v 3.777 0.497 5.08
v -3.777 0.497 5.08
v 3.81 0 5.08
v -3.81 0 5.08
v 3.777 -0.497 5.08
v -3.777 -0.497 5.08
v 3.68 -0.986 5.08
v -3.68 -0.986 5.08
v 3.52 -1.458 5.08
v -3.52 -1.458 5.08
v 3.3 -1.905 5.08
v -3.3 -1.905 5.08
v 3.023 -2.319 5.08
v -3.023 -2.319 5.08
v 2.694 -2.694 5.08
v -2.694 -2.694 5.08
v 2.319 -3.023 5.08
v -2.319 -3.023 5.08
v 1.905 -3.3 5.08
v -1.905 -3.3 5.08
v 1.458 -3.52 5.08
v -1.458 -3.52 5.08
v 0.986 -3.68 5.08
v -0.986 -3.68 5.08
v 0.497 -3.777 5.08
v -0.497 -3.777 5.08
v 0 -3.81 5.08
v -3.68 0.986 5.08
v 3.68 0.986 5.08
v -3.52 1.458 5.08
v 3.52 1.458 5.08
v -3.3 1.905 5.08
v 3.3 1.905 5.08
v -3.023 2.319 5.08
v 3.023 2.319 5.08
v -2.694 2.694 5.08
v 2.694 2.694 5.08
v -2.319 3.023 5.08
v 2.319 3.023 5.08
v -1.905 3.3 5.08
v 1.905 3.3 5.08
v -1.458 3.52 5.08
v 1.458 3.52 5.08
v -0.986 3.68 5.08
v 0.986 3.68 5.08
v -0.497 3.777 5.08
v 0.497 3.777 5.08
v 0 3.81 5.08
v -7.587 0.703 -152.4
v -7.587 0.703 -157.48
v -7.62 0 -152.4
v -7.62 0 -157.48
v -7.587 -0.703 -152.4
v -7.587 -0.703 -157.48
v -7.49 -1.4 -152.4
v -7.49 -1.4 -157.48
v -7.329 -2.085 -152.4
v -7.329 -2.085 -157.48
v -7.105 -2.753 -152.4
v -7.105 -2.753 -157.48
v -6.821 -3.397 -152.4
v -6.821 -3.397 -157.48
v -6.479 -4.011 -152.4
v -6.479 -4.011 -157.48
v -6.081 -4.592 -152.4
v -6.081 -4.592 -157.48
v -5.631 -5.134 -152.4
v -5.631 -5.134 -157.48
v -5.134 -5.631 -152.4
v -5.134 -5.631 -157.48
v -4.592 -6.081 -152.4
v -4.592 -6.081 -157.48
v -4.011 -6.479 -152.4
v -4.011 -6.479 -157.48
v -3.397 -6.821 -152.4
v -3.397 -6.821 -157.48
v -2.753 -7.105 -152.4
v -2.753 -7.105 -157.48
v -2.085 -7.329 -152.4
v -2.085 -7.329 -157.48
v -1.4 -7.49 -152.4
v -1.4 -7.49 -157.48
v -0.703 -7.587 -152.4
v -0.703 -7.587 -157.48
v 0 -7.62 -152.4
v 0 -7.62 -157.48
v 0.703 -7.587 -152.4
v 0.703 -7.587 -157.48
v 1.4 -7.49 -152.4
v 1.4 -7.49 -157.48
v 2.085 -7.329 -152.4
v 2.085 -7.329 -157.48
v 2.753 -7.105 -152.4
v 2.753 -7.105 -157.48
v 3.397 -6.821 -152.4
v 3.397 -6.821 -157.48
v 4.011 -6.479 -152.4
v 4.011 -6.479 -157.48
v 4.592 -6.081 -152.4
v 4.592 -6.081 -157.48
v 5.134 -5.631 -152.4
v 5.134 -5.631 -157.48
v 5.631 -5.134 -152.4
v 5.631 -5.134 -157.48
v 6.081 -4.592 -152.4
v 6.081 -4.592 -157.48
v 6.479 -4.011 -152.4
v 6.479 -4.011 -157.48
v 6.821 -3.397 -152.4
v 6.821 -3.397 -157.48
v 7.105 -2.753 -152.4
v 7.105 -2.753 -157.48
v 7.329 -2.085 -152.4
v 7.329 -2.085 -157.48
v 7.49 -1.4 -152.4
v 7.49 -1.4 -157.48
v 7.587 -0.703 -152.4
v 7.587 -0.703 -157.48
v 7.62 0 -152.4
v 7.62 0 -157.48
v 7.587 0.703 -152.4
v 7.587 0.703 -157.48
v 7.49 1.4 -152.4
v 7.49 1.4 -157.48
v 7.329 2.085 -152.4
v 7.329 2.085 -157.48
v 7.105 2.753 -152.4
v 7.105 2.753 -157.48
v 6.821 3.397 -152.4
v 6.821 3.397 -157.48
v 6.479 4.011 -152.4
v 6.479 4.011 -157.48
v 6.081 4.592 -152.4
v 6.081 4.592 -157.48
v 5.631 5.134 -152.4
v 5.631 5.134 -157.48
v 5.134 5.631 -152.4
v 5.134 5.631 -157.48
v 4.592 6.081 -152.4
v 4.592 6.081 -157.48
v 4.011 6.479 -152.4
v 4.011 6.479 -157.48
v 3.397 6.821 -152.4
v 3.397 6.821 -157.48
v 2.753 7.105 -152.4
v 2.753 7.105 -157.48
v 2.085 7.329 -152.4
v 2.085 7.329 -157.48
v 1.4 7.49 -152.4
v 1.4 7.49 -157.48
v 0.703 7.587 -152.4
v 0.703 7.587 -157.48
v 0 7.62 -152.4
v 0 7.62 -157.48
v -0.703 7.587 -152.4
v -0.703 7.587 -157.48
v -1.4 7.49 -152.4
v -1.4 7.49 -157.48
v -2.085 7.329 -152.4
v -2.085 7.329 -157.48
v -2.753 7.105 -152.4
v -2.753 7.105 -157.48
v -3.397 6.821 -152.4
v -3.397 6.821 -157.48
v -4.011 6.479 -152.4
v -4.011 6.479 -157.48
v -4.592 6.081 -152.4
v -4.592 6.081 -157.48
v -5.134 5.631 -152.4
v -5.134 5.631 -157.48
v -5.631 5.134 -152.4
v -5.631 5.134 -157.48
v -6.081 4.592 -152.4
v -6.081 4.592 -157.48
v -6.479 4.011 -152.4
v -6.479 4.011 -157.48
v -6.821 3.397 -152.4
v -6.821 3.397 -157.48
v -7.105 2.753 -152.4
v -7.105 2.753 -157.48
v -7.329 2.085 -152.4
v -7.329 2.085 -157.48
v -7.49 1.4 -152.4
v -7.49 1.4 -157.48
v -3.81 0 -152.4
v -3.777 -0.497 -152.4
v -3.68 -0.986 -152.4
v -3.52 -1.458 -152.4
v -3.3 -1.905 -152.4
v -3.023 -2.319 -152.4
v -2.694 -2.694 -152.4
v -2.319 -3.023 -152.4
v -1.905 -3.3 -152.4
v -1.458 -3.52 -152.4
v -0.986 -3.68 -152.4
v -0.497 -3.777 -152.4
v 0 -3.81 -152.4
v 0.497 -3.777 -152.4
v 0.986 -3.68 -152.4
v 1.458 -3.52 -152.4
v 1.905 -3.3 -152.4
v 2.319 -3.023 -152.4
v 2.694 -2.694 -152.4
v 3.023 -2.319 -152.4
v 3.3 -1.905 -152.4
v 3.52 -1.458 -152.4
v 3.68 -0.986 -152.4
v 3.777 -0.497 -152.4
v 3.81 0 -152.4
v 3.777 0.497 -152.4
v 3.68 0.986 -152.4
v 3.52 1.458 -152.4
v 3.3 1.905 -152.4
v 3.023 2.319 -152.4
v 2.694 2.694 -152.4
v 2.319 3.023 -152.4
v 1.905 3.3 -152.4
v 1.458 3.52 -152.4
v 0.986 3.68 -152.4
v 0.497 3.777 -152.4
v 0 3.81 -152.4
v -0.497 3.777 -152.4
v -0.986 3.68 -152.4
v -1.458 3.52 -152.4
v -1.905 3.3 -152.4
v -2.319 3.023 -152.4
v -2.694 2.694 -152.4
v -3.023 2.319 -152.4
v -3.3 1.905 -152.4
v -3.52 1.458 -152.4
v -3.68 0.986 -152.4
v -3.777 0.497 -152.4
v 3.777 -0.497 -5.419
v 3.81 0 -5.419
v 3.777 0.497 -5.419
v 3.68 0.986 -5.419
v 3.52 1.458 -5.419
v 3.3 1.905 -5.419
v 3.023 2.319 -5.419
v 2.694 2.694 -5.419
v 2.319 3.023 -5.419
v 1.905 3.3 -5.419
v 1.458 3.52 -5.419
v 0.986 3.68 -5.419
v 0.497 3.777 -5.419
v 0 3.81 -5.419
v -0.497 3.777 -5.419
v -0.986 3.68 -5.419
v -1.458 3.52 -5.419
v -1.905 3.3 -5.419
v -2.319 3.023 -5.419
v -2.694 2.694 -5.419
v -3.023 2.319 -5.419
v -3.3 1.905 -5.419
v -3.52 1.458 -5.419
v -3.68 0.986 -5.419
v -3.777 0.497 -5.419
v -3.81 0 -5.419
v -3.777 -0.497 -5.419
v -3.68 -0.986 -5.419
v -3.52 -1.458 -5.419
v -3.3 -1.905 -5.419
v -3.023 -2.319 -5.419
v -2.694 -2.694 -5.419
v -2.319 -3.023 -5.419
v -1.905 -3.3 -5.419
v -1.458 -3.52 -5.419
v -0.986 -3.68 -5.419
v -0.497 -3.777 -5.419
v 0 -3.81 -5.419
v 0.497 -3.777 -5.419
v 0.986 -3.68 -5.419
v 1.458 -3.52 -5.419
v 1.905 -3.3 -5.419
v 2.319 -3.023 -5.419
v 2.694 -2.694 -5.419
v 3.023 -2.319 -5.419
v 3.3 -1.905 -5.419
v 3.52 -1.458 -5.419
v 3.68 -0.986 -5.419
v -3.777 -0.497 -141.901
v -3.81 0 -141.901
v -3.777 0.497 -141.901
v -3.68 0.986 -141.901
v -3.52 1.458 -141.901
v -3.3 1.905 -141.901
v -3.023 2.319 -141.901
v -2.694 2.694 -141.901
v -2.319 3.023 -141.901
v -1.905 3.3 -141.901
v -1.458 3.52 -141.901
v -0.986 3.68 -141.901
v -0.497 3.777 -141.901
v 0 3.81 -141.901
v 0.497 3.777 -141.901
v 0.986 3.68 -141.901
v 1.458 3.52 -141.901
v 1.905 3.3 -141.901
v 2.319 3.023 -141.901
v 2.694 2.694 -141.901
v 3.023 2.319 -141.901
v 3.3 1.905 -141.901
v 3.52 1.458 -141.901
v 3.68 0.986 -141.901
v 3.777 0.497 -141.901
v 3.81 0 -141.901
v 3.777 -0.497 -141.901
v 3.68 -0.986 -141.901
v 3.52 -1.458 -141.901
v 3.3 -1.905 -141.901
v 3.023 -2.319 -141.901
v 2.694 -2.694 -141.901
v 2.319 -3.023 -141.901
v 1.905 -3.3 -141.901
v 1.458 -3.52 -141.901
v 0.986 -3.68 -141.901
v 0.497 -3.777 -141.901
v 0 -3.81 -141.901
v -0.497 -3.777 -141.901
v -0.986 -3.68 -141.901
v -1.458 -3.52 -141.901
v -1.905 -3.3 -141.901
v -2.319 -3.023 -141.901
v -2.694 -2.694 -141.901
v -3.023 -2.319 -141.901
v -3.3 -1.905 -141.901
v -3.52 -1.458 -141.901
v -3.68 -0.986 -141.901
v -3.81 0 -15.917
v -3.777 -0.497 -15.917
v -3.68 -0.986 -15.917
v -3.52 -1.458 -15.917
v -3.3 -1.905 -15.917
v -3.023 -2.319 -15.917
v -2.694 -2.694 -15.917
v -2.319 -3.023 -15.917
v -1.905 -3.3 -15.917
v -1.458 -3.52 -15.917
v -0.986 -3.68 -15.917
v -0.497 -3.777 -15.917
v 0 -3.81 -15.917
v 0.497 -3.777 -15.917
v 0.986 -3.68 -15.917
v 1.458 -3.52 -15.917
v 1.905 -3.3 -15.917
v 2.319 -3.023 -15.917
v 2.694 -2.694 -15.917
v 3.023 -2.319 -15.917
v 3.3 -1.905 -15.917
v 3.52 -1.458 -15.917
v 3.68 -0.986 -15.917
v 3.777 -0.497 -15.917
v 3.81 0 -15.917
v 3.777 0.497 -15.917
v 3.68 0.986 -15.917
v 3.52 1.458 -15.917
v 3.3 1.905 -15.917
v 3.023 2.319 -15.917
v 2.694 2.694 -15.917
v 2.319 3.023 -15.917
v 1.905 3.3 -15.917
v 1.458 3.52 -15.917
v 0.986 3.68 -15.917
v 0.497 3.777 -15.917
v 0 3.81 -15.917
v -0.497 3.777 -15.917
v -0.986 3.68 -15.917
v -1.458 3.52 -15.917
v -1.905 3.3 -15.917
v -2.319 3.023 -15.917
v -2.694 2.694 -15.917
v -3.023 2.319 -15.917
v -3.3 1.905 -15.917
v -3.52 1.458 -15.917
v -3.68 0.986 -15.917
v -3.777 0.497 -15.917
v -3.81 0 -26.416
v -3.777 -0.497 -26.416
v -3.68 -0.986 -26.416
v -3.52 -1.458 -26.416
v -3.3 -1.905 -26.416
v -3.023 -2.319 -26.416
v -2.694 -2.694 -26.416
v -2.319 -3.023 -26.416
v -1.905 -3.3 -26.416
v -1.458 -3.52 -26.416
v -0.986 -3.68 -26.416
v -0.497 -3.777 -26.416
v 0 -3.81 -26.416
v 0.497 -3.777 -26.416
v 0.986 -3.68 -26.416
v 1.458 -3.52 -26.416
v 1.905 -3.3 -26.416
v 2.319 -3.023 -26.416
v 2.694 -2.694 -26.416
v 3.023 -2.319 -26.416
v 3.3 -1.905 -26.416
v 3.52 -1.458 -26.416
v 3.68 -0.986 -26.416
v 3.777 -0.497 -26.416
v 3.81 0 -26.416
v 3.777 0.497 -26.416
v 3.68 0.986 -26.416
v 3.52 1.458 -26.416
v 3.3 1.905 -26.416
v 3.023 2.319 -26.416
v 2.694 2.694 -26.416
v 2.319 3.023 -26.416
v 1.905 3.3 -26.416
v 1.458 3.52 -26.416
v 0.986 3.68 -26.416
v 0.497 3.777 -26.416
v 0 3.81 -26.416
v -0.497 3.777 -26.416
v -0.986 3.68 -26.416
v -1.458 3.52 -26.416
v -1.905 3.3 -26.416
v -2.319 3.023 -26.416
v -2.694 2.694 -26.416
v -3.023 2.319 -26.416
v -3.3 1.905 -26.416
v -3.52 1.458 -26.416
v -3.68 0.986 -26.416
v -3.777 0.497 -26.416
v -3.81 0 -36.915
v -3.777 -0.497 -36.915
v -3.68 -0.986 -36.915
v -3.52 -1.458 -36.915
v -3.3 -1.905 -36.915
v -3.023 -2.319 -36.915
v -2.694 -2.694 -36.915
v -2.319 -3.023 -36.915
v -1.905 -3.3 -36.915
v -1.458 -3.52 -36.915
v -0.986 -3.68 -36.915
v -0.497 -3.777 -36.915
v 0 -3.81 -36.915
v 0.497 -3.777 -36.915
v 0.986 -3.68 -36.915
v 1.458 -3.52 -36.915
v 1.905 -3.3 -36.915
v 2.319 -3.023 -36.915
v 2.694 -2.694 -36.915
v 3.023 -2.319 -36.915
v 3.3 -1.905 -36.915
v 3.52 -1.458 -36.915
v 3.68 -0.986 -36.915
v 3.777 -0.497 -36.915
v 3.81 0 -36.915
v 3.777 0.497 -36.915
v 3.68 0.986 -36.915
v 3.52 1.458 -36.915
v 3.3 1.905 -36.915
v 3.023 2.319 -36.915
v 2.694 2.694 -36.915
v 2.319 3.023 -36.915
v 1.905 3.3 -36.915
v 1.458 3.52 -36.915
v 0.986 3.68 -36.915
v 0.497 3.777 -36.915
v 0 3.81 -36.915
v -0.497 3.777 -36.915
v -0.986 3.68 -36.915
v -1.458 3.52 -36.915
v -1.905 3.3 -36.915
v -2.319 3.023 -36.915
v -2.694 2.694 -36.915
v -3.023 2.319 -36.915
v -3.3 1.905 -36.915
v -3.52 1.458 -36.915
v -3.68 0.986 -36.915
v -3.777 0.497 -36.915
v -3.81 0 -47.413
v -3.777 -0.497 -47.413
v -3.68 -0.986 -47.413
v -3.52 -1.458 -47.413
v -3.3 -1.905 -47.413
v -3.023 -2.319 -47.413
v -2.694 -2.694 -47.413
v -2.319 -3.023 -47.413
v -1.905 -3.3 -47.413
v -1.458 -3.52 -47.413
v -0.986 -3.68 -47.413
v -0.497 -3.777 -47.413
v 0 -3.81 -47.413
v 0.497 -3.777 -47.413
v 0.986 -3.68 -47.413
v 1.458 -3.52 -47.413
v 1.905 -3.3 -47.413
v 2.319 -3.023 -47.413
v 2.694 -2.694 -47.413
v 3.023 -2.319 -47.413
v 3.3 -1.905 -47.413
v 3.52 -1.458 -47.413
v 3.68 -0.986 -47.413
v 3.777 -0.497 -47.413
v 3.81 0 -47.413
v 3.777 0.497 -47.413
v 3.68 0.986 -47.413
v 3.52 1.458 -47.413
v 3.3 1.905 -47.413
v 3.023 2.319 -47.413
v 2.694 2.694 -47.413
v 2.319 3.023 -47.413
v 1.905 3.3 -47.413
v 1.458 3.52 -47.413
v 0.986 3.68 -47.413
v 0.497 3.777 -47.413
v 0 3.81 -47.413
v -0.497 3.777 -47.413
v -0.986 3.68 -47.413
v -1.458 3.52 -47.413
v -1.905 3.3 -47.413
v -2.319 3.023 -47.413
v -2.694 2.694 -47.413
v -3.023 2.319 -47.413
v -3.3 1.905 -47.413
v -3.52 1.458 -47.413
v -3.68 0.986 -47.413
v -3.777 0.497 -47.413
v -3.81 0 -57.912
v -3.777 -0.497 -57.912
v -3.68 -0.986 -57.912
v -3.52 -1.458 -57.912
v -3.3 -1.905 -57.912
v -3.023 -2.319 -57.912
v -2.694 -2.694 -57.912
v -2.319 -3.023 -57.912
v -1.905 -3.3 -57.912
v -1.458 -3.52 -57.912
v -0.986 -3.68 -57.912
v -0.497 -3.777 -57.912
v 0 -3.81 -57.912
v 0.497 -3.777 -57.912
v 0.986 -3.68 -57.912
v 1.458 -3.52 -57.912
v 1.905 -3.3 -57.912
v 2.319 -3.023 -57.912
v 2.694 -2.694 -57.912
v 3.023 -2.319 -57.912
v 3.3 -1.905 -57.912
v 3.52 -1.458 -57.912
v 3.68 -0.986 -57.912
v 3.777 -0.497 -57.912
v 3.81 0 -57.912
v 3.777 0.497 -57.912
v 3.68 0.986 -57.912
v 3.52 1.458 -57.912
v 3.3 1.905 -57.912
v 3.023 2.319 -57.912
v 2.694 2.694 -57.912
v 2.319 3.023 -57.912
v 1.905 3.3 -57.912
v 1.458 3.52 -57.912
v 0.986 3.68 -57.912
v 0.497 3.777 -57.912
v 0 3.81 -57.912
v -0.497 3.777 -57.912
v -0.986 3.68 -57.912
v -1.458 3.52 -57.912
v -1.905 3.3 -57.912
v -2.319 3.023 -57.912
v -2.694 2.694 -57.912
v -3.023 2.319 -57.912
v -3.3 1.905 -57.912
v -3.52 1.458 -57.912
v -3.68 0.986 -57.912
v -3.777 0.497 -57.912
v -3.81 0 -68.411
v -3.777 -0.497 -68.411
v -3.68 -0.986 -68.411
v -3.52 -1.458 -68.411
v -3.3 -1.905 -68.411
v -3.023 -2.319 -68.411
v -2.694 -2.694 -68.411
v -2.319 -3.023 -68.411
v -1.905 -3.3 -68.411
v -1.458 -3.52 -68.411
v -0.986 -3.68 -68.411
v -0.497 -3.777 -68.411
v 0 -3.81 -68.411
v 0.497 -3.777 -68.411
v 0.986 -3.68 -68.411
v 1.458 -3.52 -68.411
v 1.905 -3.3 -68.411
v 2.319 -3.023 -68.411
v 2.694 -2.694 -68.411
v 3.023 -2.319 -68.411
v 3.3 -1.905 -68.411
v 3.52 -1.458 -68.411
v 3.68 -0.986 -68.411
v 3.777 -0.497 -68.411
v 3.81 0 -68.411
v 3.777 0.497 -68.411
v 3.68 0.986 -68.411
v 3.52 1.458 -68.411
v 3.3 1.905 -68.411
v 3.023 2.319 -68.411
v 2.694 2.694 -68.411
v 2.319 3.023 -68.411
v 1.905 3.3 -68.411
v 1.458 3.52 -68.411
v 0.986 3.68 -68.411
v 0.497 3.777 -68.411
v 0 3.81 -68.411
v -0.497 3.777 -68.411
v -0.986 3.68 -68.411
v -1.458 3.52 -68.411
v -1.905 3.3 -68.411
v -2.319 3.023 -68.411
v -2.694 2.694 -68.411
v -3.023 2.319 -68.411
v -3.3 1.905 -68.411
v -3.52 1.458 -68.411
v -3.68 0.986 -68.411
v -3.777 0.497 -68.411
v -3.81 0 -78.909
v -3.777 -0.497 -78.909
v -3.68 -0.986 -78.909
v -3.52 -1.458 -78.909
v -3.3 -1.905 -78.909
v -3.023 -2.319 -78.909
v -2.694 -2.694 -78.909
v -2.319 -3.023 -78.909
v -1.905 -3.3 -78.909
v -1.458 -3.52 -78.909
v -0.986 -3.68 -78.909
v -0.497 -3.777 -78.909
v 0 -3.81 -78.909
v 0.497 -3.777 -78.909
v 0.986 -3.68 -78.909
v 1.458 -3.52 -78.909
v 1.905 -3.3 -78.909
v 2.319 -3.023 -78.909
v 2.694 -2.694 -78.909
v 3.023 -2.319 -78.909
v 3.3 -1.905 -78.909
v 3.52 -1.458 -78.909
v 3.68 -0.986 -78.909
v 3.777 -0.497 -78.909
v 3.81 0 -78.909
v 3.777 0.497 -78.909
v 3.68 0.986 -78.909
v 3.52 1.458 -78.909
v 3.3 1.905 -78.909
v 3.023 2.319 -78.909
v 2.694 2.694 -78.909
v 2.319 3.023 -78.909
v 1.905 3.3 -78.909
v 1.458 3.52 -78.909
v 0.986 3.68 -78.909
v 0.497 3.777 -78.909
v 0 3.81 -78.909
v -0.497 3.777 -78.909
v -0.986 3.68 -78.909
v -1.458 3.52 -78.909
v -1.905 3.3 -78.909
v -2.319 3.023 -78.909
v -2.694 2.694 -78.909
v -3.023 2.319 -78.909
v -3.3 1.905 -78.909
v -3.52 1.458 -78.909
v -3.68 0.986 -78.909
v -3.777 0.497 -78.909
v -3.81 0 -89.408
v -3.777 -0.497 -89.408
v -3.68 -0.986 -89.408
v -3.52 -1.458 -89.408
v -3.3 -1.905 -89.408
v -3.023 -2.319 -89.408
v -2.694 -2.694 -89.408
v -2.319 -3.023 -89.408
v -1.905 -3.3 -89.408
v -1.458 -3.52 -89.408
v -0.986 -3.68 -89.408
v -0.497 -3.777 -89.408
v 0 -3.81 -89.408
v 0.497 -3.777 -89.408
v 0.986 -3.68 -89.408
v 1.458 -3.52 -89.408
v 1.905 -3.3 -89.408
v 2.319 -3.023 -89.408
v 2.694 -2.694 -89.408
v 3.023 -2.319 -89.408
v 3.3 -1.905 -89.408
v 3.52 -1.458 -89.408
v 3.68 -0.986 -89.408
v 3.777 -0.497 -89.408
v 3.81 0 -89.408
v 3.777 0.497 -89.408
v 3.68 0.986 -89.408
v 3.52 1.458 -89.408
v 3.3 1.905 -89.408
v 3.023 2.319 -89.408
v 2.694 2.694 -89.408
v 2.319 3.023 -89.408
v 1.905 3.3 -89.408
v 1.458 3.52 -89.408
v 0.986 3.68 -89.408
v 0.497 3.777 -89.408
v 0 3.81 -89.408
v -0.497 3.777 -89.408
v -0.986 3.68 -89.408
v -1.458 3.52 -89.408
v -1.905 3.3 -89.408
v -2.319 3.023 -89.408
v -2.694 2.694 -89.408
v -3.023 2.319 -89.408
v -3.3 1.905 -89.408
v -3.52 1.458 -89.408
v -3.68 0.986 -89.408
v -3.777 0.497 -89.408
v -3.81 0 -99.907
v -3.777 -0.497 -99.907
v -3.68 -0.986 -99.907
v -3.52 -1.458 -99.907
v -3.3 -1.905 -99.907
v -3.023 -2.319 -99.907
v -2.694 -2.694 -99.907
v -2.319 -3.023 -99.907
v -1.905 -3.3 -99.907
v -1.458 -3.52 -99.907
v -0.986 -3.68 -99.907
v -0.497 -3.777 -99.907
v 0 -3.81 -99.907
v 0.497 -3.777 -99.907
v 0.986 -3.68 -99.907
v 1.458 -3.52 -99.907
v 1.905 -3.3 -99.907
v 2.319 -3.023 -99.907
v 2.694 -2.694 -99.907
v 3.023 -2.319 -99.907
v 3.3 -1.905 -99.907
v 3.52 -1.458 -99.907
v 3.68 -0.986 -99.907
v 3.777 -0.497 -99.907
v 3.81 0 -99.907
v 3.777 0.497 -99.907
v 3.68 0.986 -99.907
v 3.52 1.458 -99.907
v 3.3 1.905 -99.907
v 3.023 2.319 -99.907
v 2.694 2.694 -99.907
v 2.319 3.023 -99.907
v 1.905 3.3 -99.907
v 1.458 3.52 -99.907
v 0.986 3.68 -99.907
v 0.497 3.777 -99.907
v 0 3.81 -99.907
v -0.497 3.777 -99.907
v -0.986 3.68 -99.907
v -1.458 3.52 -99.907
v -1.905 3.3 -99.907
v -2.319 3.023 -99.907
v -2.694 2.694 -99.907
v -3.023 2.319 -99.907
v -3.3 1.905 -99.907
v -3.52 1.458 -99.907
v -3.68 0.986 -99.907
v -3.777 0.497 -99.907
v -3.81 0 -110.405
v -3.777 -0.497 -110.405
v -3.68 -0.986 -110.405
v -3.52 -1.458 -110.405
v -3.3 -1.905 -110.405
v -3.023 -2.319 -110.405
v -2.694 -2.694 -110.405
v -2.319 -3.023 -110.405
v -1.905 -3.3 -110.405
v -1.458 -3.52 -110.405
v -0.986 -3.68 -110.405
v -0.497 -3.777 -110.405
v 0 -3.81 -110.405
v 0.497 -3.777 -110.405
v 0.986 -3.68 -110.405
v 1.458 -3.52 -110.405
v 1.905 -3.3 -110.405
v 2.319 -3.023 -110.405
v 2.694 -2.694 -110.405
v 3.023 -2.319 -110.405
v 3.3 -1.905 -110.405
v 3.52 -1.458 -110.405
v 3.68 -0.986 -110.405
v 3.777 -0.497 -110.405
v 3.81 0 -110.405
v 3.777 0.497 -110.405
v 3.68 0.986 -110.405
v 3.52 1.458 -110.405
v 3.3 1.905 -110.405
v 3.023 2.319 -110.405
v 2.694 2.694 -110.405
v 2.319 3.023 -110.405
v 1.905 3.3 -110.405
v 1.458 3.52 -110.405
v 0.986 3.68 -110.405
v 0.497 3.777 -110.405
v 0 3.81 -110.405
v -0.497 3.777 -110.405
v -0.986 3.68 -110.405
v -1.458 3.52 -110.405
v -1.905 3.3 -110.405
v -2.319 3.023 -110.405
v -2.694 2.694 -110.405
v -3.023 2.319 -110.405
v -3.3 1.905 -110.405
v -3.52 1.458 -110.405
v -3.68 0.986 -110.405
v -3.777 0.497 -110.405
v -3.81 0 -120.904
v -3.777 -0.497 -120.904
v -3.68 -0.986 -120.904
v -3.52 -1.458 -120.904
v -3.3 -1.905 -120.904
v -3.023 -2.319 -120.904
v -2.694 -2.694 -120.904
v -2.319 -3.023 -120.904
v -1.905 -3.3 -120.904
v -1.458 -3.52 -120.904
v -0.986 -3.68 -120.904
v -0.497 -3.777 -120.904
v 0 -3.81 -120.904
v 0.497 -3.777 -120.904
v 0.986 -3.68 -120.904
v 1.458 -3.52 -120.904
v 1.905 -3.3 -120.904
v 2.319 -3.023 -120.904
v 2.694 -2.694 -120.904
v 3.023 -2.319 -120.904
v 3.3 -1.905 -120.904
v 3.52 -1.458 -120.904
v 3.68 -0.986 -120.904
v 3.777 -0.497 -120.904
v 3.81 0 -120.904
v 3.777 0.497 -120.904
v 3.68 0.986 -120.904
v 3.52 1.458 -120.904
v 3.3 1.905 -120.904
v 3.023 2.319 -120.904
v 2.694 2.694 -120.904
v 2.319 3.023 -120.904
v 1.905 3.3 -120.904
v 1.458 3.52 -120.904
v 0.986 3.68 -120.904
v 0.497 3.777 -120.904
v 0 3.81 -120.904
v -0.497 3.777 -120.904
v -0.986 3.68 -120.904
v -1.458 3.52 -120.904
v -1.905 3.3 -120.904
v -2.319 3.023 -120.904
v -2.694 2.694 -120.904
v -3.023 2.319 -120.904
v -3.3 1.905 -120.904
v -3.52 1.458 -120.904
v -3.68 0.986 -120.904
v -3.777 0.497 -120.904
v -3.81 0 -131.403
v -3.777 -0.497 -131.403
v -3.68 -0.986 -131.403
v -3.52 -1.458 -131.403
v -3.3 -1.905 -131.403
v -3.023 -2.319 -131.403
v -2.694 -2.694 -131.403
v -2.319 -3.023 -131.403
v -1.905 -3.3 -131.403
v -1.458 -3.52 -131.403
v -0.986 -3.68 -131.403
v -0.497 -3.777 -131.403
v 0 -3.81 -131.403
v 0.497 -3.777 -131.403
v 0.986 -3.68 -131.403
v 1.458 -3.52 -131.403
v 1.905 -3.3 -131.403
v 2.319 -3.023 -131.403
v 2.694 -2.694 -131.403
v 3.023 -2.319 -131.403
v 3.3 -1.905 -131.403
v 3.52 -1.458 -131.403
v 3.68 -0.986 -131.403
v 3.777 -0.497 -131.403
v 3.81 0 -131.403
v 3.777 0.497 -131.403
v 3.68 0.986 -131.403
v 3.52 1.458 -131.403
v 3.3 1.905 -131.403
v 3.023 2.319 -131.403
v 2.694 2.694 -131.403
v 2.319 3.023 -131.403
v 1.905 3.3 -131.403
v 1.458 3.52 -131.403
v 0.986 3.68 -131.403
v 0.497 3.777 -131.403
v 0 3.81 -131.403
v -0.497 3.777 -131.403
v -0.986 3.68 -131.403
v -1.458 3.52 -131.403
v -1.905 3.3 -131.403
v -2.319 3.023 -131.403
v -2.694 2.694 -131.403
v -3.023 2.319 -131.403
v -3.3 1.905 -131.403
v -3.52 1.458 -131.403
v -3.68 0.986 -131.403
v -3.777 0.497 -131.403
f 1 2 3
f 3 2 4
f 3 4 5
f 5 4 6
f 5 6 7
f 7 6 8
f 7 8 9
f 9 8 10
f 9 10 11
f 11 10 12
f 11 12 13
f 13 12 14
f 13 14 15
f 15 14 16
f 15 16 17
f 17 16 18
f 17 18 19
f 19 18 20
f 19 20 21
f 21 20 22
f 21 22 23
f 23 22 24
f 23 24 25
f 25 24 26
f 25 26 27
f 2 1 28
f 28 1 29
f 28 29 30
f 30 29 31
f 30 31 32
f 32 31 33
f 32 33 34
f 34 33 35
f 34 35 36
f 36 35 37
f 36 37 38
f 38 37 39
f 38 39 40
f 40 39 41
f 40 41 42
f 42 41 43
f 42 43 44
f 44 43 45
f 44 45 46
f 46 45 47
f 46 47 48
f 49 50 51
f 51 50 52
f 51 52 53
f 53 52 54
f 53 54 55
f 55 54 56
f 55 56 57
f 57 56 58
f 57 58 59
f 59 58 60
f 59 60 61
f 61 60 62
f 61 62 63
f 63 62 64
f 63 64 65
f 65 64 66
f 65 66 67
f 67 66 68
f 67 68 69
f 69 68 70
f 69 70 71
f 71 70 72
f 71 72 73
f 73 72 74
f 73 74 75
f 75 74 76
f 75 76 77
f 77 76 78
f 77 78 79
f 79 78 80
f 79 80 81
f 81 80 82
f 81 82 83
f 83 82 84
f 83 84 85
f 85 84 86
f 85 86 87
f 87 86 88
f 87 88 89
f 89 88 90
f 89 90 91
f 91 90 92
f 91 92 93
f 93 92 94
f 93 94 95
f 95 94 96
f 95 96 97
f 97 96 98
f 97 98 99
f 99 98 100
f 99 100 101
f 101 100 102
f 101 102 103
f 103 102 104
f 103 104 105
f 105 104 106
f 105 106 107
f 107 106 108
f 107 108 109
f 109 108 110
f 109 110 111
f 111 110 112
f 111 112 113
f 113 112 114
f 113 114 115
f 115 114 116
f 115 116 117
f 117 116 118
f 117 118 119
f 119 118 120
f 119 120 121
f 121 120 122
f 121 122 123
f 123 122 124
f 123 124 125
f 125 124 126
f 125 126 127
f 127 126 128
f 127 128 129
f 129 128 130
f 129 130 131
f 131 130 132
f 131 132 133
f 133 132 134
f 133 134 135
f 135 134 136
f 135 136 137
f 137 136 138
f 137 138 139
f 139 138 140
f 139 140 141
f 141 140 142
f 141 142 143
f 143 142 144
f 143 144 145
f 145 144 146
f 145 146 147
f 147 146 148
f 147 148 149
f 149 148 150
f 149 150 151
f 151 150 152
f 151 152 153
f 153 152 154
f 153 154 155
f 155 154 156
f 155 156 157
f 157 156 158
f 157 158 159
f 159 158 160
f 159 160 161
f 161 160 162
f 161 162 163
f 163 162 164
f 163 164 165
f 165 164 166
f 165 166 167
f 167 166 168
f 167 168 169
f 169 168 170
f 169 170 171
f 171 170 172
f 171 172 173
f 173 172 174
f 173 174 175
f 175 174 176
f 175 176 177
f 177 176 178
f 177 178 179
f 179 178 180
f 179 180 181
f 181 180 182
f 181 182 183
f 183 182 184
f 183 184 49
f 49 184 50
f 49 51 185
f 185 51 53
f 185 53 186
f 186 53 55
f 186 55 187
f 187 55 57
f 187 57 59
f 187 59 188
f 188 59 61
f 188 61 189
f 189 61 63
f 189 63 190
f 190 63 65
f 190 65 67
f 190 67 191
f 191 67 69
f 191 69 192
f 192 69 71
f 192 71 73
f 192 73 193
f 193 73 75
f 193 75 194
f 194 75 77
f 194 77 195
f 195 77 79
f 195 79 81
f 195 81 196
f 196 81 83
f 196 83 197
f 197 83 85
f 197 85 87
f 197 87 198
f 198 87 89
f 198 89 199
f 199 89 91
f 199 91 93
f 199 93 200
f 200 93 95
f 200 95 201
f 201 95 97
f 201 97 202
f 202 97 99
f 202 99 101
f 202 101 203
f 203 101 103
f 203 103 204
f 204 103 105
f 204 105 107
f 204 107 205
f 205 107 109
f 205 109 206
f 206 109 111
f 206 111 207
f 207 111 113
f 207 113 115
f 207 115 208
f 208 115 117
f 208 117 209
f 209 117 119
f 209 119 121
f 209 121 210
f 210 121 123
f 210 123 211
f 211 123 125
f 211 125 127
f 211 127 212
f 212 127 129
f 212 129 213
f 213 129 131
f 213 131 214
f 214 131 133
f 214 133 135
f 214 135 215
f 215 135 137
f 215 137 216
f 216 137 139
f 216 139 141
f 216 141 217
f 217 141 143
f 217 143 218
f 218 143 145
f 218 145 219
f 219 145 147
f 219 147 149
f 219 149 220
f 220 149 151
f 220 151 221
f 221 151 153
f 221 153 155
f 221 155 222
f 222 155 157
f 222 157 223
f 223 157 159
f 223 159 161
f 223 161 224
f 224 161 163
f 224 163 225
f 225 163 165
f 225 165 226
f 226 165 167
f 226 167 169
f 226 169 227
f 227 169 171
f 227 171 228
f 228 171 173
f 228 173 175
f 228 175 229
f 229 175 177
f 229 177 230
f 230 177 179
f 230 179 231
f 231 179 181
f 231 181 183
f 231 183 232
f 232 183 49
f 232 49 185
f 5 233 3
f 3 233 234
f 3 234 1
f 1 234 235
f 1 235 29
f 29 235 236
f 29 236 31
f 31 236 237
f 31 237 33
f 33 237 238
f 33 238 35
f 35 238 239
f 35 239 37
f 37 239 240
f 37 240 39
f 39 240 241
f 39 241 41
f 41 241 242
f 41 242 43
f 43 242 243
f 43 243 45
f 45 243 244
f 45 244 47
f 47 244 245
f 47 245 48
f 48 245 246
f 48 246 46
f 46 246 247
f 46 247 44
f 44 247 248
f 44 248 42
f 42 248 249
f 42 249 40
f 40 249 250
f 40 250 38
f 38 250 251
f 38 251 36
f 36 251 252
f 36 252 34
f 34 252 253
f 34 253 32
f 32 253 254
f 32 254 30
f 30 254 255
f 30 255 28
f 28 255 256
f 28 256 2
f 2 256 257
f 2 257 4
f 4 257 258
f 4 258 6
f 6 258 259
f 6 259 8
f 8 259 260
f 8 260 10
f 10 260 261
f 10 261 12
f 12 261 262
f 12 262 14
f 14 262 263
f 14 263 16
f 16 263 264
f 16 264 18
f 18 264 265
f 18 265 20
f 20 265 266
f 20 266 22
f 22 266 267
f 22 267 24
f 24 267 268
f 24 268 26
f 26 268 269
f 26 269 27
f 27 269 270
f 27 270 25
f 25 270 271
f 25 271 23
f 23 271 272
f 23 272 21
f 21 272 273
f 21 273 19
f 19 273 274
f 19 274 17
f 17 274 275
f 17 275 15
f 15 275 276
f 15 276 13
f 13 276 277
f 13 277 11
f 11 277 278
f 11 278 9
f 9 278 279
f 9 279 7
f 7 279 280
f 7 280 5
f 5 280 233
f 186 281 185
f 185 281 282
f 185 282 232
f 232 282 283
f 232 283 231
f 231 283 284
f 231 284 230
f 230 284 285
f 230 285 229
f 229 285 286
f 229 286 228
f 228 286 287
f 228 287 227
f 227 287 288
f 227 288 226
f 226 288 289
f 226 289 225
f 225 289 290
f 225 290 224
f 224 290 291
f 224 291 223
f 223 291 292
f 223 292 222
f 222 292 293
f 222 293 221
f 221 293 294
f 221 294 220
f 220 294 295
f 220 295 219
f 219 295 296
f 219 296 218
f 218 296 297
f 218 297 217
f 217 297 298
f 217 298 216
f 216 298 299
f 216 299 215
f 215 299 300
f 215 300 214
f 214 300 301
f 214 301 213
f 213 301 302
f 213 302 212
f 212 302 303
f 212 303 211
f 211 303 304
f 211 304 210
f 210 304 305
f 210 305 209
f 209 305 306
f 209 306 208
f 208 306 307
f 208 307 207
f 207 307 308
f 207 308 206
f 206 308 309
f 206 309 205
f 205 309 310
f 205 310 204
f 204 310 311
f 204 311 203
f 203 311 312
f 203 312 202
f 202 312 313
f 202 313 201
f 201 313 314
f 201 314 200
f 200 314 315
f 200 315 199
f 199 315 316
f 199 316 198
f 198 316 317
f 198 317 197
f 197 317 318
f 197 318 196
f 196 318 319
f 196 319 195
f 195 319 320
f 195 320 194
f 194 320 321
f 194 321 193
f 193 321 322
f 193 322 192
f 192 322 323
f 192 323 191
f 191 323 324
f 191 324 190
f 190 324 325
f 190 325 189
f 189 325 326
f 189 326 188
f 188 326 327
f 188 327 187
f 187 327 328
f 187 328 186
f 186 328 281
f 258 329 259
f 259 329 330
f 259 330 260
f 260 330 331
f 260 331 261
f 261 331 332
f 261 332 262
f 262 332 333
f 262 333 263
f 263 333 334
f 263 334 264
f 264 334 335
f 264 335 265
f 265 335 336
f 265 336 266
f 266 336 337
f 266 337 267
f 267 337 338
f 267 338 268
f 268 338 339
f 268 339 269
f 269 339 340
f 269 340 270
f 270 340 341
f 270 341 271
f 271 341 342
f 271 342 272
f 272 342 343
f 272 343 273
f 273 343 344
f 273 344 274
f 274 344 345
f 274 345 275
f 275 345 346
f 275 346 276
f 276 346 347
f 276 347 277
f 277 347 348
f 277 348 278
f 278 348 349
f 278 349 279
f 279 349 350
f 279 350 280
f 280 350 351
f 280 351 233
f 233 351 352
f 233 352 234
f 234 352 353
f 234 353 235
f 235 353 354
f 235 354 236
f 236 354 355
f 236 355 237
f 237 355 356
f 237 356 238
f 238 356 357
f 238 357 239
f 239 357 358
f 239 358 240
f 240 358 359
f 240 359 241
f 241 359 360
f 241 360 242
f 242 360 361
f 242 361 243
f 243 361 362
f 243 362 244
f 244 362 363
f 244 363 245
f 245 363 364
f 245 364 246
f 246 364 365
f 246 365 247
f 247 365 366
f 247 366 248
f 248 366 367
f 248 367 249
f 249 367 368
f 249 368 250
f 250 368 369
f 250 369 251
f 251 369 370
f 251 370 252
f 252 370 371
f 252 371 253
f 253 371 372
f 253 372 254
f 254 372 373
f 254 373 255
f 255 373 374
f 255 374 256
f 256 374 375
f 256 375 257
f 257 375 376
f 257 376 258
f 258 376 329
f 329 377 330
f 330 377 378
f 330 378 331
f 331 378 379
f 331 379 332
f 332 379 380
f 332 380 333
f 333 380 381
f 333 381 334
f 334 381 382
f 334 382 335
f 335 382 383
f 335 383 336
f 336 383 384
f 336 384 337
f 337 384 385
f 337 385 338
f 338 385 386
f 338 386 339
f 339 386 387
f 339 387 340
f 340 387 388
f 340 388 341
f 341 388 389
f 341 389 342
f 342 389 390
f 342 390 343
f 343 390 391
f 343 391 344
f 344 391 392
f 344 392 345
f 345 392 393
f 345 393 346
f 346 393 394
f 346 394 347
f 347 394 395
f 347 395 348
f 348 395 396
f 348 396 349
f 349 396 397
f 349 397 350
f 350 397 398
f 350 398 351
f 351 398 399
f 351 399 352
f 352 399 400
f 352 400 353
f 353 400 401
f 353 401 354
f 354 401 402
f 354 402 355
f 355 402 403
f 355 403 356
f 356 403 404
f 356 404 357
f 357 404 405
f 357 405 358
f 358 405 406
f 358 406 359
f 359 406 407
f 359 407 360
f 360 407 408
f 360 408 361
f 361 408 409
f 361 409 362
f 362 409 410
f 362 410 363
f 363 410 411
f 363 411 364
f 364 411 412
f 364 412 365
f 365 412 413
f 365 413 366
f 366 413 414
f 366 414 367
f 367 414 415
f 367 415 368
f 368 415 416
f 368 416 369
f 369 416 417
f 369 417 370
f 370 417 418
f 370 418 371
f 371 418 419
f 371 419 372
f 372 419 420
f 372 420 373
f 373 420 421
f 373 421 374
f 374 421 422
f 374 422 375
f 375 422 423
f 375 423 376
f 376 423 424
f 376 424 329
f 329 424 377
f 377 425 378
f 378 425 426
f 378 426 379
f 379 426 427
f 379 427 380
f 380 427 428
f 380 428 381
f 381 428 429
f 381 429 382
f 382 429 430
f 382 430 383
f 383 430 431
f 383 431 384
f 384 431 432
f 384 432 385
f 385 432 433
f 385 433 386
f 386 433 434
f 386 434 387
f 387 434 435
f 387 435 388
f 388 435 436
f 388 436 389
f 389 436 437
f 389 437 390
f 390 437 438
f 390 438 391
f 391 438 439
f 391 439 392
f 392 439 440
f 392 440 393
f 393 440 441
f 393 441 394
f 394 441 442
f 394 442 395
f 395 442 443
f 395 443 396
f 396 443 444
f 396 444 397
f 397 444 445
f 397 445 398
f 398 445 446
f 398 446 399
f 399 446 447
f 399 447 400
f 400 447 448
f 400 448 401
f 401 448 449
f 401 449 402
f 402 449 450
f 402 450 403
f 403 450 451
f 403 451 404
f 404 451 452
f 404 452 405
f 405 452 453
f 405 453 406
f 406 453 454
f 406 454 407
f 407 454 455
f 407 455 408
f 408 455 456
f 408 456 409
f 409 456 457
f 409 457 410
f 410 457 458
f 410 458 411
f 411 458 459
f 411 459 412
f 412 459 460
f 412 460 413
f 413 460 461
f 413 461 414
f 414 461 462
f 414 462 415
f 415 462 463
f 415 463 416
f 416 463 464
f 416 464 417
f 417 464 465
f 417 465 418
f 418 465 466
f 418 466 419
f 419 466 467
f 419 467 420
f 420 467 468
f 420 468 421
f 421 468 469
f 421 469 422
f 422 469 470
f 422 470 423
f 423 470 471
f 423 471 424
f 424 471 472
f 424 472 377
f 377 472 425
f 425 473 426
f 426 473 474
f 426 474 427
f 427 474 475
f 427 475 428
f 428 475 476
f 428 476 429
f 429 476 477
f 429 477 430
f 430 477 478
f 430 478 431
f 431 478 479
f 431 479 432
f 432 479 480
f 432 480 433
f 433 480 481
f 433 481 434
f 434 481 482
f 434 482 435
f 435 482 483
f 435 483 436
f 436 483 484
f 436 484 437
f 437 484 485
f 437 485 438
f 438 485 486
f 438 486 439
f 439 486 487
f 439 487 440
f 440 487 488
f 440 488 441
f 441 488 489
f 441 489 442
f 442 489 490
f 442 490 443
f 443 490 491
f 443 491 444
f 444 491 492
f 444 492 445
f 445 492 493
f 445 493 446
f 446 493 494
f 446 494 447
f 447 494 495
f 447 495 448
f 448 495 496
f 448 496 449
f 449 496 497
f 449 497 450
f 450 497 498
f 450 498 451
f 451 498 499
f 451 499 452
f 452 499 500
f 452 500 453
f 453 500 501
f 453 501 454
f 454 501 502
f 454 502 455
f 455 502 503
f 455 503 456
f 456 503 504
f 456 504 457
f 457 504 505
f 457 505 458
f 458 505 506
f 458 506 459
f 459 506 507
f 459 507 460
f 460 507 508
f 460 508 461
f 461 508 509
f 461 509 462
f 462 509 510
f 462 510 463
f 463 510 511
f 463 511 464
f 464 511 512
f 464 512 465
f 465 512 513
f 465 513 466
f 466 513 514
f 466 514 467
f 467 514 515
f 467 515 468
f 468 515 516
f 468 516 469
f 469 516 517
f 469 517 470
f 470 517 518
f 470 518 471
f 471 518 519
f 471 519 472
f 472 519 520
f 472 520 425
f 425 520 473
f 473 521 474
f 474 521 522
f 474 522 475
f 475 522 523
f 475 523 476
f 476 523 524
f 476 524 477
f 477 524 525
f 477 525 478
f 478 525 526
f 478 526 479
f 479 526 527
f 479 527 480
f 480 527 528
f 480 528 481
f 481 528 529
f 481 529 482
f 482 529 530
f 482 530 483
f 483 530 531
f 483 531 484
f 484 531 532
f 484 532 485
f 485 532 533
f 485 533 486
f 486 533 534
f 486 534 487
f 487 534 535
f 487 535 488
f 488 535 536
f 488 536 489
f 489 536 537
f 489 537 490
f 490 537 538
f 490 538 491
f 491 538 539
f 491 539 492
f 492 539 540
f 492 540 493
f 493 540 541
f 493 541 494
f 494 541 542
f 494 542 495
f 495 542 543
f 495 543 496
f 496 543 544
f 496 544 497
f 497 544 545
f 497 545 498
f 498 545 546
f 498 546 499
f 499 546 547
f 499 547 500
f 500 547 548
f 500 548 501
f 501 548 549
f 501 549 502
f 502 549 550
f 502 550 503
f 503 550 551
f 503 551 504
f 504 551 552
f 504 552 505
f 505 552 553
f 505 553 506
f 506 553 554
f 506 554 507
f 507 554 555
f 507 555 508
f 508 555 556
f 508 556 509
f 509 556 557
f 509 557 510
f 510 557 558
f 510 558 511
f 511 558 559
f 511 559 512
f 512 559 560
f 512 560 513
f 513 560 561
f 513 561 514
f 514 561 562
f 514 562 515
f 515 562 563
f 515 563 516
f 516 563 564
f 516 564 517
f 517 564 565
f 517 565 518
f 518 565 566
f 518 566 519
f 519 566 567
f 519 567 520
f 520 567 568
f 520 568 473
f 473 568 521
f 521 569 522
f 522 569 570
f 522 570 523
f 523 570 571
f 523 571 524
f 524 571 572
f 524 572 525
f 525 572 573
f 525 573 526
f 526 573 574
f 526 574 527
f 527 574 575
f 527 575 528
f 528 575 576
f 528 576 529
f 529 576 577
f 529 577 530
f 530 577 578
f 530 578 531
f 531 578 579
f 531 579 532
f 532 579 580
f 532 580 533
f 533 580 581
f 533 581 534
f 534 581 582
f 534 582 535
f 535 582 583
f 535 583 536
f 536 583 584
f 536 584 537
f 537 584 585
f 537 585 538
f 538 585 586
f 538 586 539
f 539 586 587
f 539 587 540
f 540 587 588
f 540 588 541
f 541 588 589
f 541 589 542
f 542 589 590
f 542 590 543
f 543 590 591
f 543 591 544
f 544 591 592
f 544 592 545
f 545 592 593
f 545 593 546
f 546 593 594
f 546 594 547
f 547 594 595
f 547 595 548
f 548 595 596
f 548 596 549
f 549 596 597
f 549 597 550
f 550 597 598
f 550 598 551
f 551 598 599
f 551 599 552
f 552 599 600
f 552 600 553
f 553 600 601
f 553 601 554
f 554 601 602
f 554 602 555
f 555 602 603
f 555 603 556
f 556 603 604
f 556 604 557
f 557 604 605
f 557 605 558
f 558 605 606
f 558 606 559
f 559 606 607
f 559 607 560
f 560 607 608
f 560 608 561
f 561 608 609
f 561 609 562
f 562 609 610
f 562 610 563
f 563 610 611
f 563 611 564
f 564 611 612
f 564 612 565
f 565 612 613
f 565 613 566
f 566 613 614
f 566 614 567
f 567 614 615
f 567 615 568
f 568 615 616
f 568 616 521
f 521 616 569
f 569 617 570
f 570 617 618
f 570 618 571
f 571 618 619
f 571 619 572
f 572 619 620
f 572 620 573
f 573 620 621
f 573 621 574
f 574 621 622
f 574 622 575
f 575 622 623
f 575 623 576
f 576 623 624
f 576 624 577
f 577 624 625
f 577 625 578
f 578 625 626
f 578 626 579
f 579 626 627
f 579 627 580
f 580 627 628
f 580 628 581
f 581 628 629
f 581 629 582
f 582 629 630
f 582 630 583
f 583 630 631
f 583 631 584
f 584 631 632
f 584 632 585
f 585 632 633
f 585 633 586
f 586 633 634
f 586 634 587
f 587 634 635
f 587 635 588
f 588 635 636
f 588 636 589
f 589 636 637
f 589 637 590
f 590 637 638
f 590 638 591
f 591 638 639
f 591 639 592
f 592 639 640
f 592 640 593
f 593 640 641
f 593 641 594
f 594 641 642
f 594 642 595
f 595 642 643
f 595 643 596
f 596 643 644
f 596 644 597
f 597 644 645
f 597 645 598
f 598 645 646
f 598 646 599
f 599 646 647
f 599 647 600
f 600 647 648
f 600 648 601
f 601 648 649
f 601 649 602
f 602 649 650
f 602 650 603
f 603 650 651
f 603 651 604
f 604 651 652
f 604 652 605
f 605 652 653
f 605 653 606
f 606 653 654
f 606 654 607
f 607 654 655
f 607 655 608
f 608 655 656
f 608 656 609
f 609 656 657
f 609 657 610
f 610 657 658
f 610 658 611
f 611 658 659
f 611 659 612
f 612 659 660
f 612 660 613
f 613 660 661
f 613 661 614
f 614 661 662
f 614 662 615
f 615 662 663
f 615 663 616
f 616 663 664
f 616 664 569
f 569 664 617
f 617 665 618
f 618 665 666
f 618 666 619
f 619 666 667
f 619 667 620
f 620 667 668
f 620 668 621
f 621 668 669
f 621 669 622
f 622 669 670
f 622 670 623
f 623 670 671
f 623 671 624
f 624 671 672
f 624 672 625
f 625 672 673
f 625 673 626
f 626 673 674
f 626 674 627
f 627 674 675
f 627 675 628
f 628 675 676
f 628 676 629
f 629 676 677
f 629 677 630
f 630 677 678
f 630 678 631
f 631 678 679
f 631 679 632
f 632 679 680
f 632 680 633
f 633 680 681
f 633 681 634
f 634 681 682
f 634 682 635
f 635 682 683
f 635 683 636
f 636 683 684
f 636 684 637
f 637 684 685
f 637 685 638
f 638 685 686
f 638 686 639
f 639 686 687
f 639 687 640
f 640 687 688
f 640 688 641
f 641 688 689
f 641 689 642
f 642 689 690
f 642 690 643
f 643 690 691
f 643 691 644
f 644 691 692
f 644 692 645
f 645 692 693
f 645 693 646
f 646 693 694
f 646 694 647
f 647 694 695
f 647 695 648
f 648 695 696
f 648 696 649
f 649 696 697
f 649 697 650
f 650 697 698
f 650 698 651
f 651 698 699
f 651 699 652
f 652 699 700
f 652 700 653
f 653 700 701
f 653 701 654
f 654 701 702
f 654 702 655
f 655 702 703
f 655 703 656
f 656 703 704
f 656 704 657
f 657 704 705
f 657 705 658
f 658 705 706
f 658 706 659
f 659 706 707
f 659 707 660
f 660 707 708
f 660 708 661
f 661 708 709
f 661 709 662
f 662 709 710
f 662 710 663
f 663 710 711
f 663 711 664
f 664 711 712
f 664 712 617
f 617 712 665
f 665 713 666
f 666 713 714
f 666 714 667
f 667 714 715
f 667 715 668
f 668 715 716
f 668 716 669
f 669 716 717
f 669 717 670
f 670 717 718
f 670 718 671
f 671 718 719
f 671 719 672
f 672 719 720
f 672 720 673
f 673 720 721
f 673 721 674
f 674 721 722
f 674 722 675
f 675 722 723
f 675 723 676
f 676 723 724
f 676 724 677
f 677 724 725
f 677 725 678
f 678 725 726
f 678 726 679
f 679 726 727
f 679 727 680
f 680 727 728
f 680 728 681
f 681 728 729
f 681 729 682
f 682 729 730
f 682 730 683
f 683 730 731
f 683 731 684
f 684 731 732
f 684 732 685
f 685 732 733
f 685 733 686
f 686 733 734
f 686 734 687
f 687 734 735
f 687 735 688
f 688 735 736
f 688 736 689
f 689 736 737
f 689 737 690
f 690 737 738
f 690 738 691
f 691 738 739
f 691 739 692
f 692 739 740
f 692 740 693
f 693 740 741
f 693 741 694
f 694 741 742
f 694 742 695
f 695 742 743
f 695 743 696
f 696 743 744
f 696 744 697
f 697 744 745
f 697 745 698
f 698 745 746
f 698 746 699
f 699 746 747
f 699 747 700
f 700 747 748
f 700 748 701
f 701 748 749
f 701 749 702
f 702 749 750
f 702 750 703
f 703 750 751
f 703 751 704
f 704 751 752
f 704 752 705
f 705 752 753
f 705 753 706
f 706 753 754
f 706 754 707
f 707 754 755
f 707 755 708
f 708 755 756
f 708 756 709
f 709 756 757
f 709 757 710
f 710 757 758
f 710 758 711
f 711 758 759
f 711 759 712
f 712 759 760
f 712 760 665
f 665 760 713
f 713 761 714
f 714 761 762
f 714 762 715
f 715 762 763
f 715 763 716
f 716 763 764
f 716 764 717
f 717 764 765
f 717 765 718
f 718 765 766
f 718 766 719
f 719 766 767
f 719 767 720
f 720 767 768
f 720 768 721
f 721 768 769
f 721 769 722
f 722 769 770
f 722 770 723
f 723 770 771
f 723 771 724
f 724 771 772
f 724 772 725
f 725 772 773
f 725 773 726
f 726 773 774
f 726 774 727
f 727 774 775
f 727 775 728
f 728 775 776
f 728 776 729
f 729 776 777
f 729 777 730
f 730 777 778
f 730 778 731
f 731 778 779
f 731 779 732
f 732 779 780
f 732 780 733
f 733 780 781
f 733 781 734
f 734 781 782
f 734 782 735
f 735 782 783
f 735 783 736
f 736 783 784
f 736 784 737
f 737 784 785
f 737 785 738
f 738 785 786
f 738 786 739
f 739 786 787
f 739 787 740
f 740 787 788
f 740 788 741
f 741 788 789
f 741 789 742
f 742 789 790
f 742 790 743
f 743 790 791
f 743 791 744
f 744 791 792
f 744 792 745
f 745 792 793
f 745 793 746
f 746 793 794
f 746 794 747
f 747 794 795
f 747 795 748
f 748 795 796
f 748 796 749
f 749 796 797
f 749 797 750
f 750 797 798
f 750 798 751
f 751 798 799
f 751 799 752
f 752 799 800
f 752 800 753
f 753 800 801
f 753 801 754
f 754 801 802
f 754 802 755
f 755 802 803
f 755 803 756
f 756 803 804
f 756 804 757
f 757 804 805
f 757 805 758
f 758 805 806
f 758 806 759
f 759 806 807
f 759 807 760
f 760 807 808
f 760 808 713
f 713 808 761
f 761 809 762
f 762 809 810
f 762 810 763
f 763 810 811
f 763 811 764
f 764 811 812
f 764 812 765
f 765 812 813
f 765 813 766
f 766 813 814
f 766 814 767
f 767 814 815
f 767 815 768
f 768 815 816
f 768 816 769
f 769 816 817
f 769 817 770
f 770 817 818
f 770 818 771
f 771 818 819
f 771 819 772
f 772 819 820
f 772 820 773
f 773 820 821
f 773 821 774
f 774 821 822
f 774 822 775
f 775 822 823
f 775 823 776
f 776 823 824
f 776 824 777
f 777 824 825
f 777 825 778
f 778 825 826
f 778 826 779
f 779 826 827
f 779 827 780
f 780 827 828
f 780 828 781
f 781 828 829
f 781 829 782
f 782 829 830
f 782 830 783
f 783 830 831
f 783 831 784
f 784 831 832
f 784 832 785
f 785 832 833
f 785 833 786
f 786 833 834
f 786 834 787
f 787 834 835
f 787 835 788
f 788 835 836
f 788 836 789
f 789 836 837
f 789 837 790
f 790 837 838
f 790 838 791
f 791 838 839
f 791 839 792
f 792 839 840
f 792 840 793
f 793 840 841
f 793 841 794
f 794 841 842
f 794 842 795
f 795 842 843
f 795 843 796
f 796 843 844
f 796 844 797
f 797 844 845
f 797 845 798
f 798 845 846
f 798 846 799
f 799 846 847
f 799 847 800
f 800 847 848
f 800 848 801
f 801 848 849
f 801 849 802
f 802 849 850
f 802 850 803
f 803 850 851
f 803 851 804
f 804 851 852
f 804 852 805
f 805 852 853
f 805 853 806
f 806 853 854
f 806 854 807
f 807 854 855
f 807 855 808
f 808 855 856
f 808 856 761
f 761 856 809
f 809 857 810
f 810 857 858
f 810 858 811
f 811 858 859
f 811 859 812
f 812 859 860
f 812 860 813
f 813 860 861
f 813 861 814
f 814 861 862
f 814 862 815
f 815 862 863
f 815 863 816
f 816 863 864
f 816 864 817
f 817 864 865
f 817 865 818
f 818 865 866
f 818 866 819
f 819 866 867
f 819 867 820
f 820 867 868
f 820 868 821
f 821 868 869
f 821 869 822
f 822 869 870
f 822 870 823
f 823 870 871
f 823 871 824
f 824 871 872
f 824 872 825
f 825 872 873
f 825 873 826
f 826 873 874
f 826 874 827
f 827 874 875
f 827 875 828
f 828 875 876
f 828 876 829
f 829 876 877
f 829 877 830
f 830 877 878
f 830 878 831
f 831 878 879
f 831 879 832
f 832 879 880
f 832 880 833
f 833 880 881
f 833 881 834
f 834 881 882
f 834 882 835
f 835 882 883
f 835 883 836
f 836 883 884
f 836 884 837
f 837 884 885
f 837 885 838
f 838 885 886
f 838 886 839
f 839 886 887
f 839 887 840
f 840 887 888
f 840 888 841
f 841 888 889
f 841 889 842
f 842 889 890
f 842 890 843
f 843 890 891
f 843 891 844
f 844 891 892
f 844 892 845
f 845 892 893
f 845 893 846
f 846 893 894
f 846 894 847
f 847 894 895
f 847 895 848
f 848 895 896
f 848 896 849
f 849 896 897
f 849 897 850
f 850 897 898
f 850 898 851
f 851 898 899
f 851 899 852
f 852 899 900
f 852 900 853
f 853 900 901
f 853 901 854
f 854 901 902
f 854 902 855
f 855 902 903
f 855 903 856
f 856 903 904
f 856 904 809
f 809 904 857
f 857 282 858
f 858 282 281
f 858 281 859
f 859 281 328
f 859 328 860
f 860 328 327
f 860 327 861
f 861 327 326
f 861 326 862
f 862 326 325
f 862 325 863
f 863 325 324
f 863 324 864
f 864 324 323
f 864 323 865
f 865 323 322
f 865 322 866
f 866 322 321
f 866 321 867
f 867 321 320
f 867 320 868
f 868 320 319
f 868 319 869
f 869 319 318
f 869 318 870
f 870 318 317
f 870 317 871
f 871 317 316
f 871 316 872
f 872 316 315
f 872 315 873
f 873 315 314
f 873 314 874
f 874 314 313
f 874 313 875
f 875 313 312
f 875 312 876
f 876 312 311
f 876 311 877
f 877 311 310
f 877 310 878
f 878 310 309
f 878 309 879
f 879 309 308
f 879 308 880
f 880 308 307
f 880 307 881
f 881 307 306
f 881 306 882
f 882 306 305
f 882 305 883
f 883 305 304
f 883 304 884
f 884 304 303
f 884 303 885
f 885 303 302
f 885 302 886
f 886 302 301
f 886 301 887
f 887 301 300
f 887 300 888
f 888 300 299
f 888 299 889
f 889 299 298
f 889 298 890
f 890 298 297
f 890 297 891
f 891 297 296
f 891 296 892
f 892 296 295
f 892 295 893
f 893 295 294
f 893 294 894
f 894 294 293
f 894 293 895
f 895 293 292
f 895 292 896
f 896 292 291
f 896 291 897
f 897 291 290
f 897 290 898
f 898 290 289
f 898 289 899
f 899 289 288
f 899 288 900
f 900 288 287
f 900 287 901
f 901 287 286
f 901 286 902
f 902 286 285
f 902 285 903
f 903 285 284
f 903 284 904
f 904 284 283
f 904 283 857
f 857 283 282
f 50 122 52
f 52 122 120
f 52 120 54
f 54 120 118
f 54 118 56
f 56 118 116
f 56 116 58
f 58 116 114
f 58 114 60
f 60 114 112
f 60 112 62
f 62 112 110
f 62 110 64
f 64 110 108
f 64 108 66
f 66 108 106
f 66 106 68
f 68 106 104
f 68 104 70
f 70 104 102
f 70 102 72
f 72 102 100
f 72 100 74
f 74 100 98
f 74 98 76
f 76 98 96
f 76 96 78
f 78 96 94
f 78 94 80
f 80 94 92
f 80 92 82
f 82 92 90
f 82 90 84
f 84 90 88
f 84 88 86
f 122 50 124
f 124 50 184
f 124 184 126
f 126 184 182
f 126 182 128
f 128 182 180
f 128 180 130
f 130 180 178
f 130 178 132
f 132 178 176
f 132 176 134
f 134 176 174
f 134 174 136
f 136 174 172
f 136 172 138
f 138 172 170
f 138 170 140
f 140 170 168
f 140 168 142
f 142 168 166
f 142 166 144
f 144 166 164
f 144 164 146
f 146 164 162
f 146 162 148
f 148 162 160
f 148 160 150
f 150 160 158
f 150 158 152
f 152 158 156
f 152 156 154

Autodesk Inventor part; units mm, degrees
ref_plane "YZ Plane" through (0, 0, 0) normal (1, 0, 0) x (0, 1, 0)
ref_plane "XZ Plane" through (0, 0, 0) normal (0, 1, 0) x (-1, 0, 0)
ref_plane "XY Plane" through (0, 0, 0) normal (0, 0, 1) x (1, 0, 0)
sketch "Sketch1" plane through (0, 0, 0) normal (0, 0, 1) x (1, 0, 0)
  circle A0 centre (0, 0) radius 3.81
  dimension "d0" = 7.62
extrude "Extrusion1" add sketch "Sketch1" against normal blind 157.48
sketch "Sketch2" plane through (0, 0, -157.48) normal (0, 0, -1) x (-1, 0, 0)
  circle A0 centre (0, 0) radius 7.62
  circle A1 centre (0, 0) radius 3.81
  dimension "d3" = 15.24
extrude "Extrusion2" add sketch "Sketch2" against normal blind 5.08
sketch "Sketch3" plane through (0, 0, 0) normal (0, 0, 1) x (1, 0, 0)
  circle A0 centre (0, 0) radius 3.81 projected
extrude "Extrusion3" add sketch "Sketch3" along normal blind 5.08
properties part number "roller pin"
